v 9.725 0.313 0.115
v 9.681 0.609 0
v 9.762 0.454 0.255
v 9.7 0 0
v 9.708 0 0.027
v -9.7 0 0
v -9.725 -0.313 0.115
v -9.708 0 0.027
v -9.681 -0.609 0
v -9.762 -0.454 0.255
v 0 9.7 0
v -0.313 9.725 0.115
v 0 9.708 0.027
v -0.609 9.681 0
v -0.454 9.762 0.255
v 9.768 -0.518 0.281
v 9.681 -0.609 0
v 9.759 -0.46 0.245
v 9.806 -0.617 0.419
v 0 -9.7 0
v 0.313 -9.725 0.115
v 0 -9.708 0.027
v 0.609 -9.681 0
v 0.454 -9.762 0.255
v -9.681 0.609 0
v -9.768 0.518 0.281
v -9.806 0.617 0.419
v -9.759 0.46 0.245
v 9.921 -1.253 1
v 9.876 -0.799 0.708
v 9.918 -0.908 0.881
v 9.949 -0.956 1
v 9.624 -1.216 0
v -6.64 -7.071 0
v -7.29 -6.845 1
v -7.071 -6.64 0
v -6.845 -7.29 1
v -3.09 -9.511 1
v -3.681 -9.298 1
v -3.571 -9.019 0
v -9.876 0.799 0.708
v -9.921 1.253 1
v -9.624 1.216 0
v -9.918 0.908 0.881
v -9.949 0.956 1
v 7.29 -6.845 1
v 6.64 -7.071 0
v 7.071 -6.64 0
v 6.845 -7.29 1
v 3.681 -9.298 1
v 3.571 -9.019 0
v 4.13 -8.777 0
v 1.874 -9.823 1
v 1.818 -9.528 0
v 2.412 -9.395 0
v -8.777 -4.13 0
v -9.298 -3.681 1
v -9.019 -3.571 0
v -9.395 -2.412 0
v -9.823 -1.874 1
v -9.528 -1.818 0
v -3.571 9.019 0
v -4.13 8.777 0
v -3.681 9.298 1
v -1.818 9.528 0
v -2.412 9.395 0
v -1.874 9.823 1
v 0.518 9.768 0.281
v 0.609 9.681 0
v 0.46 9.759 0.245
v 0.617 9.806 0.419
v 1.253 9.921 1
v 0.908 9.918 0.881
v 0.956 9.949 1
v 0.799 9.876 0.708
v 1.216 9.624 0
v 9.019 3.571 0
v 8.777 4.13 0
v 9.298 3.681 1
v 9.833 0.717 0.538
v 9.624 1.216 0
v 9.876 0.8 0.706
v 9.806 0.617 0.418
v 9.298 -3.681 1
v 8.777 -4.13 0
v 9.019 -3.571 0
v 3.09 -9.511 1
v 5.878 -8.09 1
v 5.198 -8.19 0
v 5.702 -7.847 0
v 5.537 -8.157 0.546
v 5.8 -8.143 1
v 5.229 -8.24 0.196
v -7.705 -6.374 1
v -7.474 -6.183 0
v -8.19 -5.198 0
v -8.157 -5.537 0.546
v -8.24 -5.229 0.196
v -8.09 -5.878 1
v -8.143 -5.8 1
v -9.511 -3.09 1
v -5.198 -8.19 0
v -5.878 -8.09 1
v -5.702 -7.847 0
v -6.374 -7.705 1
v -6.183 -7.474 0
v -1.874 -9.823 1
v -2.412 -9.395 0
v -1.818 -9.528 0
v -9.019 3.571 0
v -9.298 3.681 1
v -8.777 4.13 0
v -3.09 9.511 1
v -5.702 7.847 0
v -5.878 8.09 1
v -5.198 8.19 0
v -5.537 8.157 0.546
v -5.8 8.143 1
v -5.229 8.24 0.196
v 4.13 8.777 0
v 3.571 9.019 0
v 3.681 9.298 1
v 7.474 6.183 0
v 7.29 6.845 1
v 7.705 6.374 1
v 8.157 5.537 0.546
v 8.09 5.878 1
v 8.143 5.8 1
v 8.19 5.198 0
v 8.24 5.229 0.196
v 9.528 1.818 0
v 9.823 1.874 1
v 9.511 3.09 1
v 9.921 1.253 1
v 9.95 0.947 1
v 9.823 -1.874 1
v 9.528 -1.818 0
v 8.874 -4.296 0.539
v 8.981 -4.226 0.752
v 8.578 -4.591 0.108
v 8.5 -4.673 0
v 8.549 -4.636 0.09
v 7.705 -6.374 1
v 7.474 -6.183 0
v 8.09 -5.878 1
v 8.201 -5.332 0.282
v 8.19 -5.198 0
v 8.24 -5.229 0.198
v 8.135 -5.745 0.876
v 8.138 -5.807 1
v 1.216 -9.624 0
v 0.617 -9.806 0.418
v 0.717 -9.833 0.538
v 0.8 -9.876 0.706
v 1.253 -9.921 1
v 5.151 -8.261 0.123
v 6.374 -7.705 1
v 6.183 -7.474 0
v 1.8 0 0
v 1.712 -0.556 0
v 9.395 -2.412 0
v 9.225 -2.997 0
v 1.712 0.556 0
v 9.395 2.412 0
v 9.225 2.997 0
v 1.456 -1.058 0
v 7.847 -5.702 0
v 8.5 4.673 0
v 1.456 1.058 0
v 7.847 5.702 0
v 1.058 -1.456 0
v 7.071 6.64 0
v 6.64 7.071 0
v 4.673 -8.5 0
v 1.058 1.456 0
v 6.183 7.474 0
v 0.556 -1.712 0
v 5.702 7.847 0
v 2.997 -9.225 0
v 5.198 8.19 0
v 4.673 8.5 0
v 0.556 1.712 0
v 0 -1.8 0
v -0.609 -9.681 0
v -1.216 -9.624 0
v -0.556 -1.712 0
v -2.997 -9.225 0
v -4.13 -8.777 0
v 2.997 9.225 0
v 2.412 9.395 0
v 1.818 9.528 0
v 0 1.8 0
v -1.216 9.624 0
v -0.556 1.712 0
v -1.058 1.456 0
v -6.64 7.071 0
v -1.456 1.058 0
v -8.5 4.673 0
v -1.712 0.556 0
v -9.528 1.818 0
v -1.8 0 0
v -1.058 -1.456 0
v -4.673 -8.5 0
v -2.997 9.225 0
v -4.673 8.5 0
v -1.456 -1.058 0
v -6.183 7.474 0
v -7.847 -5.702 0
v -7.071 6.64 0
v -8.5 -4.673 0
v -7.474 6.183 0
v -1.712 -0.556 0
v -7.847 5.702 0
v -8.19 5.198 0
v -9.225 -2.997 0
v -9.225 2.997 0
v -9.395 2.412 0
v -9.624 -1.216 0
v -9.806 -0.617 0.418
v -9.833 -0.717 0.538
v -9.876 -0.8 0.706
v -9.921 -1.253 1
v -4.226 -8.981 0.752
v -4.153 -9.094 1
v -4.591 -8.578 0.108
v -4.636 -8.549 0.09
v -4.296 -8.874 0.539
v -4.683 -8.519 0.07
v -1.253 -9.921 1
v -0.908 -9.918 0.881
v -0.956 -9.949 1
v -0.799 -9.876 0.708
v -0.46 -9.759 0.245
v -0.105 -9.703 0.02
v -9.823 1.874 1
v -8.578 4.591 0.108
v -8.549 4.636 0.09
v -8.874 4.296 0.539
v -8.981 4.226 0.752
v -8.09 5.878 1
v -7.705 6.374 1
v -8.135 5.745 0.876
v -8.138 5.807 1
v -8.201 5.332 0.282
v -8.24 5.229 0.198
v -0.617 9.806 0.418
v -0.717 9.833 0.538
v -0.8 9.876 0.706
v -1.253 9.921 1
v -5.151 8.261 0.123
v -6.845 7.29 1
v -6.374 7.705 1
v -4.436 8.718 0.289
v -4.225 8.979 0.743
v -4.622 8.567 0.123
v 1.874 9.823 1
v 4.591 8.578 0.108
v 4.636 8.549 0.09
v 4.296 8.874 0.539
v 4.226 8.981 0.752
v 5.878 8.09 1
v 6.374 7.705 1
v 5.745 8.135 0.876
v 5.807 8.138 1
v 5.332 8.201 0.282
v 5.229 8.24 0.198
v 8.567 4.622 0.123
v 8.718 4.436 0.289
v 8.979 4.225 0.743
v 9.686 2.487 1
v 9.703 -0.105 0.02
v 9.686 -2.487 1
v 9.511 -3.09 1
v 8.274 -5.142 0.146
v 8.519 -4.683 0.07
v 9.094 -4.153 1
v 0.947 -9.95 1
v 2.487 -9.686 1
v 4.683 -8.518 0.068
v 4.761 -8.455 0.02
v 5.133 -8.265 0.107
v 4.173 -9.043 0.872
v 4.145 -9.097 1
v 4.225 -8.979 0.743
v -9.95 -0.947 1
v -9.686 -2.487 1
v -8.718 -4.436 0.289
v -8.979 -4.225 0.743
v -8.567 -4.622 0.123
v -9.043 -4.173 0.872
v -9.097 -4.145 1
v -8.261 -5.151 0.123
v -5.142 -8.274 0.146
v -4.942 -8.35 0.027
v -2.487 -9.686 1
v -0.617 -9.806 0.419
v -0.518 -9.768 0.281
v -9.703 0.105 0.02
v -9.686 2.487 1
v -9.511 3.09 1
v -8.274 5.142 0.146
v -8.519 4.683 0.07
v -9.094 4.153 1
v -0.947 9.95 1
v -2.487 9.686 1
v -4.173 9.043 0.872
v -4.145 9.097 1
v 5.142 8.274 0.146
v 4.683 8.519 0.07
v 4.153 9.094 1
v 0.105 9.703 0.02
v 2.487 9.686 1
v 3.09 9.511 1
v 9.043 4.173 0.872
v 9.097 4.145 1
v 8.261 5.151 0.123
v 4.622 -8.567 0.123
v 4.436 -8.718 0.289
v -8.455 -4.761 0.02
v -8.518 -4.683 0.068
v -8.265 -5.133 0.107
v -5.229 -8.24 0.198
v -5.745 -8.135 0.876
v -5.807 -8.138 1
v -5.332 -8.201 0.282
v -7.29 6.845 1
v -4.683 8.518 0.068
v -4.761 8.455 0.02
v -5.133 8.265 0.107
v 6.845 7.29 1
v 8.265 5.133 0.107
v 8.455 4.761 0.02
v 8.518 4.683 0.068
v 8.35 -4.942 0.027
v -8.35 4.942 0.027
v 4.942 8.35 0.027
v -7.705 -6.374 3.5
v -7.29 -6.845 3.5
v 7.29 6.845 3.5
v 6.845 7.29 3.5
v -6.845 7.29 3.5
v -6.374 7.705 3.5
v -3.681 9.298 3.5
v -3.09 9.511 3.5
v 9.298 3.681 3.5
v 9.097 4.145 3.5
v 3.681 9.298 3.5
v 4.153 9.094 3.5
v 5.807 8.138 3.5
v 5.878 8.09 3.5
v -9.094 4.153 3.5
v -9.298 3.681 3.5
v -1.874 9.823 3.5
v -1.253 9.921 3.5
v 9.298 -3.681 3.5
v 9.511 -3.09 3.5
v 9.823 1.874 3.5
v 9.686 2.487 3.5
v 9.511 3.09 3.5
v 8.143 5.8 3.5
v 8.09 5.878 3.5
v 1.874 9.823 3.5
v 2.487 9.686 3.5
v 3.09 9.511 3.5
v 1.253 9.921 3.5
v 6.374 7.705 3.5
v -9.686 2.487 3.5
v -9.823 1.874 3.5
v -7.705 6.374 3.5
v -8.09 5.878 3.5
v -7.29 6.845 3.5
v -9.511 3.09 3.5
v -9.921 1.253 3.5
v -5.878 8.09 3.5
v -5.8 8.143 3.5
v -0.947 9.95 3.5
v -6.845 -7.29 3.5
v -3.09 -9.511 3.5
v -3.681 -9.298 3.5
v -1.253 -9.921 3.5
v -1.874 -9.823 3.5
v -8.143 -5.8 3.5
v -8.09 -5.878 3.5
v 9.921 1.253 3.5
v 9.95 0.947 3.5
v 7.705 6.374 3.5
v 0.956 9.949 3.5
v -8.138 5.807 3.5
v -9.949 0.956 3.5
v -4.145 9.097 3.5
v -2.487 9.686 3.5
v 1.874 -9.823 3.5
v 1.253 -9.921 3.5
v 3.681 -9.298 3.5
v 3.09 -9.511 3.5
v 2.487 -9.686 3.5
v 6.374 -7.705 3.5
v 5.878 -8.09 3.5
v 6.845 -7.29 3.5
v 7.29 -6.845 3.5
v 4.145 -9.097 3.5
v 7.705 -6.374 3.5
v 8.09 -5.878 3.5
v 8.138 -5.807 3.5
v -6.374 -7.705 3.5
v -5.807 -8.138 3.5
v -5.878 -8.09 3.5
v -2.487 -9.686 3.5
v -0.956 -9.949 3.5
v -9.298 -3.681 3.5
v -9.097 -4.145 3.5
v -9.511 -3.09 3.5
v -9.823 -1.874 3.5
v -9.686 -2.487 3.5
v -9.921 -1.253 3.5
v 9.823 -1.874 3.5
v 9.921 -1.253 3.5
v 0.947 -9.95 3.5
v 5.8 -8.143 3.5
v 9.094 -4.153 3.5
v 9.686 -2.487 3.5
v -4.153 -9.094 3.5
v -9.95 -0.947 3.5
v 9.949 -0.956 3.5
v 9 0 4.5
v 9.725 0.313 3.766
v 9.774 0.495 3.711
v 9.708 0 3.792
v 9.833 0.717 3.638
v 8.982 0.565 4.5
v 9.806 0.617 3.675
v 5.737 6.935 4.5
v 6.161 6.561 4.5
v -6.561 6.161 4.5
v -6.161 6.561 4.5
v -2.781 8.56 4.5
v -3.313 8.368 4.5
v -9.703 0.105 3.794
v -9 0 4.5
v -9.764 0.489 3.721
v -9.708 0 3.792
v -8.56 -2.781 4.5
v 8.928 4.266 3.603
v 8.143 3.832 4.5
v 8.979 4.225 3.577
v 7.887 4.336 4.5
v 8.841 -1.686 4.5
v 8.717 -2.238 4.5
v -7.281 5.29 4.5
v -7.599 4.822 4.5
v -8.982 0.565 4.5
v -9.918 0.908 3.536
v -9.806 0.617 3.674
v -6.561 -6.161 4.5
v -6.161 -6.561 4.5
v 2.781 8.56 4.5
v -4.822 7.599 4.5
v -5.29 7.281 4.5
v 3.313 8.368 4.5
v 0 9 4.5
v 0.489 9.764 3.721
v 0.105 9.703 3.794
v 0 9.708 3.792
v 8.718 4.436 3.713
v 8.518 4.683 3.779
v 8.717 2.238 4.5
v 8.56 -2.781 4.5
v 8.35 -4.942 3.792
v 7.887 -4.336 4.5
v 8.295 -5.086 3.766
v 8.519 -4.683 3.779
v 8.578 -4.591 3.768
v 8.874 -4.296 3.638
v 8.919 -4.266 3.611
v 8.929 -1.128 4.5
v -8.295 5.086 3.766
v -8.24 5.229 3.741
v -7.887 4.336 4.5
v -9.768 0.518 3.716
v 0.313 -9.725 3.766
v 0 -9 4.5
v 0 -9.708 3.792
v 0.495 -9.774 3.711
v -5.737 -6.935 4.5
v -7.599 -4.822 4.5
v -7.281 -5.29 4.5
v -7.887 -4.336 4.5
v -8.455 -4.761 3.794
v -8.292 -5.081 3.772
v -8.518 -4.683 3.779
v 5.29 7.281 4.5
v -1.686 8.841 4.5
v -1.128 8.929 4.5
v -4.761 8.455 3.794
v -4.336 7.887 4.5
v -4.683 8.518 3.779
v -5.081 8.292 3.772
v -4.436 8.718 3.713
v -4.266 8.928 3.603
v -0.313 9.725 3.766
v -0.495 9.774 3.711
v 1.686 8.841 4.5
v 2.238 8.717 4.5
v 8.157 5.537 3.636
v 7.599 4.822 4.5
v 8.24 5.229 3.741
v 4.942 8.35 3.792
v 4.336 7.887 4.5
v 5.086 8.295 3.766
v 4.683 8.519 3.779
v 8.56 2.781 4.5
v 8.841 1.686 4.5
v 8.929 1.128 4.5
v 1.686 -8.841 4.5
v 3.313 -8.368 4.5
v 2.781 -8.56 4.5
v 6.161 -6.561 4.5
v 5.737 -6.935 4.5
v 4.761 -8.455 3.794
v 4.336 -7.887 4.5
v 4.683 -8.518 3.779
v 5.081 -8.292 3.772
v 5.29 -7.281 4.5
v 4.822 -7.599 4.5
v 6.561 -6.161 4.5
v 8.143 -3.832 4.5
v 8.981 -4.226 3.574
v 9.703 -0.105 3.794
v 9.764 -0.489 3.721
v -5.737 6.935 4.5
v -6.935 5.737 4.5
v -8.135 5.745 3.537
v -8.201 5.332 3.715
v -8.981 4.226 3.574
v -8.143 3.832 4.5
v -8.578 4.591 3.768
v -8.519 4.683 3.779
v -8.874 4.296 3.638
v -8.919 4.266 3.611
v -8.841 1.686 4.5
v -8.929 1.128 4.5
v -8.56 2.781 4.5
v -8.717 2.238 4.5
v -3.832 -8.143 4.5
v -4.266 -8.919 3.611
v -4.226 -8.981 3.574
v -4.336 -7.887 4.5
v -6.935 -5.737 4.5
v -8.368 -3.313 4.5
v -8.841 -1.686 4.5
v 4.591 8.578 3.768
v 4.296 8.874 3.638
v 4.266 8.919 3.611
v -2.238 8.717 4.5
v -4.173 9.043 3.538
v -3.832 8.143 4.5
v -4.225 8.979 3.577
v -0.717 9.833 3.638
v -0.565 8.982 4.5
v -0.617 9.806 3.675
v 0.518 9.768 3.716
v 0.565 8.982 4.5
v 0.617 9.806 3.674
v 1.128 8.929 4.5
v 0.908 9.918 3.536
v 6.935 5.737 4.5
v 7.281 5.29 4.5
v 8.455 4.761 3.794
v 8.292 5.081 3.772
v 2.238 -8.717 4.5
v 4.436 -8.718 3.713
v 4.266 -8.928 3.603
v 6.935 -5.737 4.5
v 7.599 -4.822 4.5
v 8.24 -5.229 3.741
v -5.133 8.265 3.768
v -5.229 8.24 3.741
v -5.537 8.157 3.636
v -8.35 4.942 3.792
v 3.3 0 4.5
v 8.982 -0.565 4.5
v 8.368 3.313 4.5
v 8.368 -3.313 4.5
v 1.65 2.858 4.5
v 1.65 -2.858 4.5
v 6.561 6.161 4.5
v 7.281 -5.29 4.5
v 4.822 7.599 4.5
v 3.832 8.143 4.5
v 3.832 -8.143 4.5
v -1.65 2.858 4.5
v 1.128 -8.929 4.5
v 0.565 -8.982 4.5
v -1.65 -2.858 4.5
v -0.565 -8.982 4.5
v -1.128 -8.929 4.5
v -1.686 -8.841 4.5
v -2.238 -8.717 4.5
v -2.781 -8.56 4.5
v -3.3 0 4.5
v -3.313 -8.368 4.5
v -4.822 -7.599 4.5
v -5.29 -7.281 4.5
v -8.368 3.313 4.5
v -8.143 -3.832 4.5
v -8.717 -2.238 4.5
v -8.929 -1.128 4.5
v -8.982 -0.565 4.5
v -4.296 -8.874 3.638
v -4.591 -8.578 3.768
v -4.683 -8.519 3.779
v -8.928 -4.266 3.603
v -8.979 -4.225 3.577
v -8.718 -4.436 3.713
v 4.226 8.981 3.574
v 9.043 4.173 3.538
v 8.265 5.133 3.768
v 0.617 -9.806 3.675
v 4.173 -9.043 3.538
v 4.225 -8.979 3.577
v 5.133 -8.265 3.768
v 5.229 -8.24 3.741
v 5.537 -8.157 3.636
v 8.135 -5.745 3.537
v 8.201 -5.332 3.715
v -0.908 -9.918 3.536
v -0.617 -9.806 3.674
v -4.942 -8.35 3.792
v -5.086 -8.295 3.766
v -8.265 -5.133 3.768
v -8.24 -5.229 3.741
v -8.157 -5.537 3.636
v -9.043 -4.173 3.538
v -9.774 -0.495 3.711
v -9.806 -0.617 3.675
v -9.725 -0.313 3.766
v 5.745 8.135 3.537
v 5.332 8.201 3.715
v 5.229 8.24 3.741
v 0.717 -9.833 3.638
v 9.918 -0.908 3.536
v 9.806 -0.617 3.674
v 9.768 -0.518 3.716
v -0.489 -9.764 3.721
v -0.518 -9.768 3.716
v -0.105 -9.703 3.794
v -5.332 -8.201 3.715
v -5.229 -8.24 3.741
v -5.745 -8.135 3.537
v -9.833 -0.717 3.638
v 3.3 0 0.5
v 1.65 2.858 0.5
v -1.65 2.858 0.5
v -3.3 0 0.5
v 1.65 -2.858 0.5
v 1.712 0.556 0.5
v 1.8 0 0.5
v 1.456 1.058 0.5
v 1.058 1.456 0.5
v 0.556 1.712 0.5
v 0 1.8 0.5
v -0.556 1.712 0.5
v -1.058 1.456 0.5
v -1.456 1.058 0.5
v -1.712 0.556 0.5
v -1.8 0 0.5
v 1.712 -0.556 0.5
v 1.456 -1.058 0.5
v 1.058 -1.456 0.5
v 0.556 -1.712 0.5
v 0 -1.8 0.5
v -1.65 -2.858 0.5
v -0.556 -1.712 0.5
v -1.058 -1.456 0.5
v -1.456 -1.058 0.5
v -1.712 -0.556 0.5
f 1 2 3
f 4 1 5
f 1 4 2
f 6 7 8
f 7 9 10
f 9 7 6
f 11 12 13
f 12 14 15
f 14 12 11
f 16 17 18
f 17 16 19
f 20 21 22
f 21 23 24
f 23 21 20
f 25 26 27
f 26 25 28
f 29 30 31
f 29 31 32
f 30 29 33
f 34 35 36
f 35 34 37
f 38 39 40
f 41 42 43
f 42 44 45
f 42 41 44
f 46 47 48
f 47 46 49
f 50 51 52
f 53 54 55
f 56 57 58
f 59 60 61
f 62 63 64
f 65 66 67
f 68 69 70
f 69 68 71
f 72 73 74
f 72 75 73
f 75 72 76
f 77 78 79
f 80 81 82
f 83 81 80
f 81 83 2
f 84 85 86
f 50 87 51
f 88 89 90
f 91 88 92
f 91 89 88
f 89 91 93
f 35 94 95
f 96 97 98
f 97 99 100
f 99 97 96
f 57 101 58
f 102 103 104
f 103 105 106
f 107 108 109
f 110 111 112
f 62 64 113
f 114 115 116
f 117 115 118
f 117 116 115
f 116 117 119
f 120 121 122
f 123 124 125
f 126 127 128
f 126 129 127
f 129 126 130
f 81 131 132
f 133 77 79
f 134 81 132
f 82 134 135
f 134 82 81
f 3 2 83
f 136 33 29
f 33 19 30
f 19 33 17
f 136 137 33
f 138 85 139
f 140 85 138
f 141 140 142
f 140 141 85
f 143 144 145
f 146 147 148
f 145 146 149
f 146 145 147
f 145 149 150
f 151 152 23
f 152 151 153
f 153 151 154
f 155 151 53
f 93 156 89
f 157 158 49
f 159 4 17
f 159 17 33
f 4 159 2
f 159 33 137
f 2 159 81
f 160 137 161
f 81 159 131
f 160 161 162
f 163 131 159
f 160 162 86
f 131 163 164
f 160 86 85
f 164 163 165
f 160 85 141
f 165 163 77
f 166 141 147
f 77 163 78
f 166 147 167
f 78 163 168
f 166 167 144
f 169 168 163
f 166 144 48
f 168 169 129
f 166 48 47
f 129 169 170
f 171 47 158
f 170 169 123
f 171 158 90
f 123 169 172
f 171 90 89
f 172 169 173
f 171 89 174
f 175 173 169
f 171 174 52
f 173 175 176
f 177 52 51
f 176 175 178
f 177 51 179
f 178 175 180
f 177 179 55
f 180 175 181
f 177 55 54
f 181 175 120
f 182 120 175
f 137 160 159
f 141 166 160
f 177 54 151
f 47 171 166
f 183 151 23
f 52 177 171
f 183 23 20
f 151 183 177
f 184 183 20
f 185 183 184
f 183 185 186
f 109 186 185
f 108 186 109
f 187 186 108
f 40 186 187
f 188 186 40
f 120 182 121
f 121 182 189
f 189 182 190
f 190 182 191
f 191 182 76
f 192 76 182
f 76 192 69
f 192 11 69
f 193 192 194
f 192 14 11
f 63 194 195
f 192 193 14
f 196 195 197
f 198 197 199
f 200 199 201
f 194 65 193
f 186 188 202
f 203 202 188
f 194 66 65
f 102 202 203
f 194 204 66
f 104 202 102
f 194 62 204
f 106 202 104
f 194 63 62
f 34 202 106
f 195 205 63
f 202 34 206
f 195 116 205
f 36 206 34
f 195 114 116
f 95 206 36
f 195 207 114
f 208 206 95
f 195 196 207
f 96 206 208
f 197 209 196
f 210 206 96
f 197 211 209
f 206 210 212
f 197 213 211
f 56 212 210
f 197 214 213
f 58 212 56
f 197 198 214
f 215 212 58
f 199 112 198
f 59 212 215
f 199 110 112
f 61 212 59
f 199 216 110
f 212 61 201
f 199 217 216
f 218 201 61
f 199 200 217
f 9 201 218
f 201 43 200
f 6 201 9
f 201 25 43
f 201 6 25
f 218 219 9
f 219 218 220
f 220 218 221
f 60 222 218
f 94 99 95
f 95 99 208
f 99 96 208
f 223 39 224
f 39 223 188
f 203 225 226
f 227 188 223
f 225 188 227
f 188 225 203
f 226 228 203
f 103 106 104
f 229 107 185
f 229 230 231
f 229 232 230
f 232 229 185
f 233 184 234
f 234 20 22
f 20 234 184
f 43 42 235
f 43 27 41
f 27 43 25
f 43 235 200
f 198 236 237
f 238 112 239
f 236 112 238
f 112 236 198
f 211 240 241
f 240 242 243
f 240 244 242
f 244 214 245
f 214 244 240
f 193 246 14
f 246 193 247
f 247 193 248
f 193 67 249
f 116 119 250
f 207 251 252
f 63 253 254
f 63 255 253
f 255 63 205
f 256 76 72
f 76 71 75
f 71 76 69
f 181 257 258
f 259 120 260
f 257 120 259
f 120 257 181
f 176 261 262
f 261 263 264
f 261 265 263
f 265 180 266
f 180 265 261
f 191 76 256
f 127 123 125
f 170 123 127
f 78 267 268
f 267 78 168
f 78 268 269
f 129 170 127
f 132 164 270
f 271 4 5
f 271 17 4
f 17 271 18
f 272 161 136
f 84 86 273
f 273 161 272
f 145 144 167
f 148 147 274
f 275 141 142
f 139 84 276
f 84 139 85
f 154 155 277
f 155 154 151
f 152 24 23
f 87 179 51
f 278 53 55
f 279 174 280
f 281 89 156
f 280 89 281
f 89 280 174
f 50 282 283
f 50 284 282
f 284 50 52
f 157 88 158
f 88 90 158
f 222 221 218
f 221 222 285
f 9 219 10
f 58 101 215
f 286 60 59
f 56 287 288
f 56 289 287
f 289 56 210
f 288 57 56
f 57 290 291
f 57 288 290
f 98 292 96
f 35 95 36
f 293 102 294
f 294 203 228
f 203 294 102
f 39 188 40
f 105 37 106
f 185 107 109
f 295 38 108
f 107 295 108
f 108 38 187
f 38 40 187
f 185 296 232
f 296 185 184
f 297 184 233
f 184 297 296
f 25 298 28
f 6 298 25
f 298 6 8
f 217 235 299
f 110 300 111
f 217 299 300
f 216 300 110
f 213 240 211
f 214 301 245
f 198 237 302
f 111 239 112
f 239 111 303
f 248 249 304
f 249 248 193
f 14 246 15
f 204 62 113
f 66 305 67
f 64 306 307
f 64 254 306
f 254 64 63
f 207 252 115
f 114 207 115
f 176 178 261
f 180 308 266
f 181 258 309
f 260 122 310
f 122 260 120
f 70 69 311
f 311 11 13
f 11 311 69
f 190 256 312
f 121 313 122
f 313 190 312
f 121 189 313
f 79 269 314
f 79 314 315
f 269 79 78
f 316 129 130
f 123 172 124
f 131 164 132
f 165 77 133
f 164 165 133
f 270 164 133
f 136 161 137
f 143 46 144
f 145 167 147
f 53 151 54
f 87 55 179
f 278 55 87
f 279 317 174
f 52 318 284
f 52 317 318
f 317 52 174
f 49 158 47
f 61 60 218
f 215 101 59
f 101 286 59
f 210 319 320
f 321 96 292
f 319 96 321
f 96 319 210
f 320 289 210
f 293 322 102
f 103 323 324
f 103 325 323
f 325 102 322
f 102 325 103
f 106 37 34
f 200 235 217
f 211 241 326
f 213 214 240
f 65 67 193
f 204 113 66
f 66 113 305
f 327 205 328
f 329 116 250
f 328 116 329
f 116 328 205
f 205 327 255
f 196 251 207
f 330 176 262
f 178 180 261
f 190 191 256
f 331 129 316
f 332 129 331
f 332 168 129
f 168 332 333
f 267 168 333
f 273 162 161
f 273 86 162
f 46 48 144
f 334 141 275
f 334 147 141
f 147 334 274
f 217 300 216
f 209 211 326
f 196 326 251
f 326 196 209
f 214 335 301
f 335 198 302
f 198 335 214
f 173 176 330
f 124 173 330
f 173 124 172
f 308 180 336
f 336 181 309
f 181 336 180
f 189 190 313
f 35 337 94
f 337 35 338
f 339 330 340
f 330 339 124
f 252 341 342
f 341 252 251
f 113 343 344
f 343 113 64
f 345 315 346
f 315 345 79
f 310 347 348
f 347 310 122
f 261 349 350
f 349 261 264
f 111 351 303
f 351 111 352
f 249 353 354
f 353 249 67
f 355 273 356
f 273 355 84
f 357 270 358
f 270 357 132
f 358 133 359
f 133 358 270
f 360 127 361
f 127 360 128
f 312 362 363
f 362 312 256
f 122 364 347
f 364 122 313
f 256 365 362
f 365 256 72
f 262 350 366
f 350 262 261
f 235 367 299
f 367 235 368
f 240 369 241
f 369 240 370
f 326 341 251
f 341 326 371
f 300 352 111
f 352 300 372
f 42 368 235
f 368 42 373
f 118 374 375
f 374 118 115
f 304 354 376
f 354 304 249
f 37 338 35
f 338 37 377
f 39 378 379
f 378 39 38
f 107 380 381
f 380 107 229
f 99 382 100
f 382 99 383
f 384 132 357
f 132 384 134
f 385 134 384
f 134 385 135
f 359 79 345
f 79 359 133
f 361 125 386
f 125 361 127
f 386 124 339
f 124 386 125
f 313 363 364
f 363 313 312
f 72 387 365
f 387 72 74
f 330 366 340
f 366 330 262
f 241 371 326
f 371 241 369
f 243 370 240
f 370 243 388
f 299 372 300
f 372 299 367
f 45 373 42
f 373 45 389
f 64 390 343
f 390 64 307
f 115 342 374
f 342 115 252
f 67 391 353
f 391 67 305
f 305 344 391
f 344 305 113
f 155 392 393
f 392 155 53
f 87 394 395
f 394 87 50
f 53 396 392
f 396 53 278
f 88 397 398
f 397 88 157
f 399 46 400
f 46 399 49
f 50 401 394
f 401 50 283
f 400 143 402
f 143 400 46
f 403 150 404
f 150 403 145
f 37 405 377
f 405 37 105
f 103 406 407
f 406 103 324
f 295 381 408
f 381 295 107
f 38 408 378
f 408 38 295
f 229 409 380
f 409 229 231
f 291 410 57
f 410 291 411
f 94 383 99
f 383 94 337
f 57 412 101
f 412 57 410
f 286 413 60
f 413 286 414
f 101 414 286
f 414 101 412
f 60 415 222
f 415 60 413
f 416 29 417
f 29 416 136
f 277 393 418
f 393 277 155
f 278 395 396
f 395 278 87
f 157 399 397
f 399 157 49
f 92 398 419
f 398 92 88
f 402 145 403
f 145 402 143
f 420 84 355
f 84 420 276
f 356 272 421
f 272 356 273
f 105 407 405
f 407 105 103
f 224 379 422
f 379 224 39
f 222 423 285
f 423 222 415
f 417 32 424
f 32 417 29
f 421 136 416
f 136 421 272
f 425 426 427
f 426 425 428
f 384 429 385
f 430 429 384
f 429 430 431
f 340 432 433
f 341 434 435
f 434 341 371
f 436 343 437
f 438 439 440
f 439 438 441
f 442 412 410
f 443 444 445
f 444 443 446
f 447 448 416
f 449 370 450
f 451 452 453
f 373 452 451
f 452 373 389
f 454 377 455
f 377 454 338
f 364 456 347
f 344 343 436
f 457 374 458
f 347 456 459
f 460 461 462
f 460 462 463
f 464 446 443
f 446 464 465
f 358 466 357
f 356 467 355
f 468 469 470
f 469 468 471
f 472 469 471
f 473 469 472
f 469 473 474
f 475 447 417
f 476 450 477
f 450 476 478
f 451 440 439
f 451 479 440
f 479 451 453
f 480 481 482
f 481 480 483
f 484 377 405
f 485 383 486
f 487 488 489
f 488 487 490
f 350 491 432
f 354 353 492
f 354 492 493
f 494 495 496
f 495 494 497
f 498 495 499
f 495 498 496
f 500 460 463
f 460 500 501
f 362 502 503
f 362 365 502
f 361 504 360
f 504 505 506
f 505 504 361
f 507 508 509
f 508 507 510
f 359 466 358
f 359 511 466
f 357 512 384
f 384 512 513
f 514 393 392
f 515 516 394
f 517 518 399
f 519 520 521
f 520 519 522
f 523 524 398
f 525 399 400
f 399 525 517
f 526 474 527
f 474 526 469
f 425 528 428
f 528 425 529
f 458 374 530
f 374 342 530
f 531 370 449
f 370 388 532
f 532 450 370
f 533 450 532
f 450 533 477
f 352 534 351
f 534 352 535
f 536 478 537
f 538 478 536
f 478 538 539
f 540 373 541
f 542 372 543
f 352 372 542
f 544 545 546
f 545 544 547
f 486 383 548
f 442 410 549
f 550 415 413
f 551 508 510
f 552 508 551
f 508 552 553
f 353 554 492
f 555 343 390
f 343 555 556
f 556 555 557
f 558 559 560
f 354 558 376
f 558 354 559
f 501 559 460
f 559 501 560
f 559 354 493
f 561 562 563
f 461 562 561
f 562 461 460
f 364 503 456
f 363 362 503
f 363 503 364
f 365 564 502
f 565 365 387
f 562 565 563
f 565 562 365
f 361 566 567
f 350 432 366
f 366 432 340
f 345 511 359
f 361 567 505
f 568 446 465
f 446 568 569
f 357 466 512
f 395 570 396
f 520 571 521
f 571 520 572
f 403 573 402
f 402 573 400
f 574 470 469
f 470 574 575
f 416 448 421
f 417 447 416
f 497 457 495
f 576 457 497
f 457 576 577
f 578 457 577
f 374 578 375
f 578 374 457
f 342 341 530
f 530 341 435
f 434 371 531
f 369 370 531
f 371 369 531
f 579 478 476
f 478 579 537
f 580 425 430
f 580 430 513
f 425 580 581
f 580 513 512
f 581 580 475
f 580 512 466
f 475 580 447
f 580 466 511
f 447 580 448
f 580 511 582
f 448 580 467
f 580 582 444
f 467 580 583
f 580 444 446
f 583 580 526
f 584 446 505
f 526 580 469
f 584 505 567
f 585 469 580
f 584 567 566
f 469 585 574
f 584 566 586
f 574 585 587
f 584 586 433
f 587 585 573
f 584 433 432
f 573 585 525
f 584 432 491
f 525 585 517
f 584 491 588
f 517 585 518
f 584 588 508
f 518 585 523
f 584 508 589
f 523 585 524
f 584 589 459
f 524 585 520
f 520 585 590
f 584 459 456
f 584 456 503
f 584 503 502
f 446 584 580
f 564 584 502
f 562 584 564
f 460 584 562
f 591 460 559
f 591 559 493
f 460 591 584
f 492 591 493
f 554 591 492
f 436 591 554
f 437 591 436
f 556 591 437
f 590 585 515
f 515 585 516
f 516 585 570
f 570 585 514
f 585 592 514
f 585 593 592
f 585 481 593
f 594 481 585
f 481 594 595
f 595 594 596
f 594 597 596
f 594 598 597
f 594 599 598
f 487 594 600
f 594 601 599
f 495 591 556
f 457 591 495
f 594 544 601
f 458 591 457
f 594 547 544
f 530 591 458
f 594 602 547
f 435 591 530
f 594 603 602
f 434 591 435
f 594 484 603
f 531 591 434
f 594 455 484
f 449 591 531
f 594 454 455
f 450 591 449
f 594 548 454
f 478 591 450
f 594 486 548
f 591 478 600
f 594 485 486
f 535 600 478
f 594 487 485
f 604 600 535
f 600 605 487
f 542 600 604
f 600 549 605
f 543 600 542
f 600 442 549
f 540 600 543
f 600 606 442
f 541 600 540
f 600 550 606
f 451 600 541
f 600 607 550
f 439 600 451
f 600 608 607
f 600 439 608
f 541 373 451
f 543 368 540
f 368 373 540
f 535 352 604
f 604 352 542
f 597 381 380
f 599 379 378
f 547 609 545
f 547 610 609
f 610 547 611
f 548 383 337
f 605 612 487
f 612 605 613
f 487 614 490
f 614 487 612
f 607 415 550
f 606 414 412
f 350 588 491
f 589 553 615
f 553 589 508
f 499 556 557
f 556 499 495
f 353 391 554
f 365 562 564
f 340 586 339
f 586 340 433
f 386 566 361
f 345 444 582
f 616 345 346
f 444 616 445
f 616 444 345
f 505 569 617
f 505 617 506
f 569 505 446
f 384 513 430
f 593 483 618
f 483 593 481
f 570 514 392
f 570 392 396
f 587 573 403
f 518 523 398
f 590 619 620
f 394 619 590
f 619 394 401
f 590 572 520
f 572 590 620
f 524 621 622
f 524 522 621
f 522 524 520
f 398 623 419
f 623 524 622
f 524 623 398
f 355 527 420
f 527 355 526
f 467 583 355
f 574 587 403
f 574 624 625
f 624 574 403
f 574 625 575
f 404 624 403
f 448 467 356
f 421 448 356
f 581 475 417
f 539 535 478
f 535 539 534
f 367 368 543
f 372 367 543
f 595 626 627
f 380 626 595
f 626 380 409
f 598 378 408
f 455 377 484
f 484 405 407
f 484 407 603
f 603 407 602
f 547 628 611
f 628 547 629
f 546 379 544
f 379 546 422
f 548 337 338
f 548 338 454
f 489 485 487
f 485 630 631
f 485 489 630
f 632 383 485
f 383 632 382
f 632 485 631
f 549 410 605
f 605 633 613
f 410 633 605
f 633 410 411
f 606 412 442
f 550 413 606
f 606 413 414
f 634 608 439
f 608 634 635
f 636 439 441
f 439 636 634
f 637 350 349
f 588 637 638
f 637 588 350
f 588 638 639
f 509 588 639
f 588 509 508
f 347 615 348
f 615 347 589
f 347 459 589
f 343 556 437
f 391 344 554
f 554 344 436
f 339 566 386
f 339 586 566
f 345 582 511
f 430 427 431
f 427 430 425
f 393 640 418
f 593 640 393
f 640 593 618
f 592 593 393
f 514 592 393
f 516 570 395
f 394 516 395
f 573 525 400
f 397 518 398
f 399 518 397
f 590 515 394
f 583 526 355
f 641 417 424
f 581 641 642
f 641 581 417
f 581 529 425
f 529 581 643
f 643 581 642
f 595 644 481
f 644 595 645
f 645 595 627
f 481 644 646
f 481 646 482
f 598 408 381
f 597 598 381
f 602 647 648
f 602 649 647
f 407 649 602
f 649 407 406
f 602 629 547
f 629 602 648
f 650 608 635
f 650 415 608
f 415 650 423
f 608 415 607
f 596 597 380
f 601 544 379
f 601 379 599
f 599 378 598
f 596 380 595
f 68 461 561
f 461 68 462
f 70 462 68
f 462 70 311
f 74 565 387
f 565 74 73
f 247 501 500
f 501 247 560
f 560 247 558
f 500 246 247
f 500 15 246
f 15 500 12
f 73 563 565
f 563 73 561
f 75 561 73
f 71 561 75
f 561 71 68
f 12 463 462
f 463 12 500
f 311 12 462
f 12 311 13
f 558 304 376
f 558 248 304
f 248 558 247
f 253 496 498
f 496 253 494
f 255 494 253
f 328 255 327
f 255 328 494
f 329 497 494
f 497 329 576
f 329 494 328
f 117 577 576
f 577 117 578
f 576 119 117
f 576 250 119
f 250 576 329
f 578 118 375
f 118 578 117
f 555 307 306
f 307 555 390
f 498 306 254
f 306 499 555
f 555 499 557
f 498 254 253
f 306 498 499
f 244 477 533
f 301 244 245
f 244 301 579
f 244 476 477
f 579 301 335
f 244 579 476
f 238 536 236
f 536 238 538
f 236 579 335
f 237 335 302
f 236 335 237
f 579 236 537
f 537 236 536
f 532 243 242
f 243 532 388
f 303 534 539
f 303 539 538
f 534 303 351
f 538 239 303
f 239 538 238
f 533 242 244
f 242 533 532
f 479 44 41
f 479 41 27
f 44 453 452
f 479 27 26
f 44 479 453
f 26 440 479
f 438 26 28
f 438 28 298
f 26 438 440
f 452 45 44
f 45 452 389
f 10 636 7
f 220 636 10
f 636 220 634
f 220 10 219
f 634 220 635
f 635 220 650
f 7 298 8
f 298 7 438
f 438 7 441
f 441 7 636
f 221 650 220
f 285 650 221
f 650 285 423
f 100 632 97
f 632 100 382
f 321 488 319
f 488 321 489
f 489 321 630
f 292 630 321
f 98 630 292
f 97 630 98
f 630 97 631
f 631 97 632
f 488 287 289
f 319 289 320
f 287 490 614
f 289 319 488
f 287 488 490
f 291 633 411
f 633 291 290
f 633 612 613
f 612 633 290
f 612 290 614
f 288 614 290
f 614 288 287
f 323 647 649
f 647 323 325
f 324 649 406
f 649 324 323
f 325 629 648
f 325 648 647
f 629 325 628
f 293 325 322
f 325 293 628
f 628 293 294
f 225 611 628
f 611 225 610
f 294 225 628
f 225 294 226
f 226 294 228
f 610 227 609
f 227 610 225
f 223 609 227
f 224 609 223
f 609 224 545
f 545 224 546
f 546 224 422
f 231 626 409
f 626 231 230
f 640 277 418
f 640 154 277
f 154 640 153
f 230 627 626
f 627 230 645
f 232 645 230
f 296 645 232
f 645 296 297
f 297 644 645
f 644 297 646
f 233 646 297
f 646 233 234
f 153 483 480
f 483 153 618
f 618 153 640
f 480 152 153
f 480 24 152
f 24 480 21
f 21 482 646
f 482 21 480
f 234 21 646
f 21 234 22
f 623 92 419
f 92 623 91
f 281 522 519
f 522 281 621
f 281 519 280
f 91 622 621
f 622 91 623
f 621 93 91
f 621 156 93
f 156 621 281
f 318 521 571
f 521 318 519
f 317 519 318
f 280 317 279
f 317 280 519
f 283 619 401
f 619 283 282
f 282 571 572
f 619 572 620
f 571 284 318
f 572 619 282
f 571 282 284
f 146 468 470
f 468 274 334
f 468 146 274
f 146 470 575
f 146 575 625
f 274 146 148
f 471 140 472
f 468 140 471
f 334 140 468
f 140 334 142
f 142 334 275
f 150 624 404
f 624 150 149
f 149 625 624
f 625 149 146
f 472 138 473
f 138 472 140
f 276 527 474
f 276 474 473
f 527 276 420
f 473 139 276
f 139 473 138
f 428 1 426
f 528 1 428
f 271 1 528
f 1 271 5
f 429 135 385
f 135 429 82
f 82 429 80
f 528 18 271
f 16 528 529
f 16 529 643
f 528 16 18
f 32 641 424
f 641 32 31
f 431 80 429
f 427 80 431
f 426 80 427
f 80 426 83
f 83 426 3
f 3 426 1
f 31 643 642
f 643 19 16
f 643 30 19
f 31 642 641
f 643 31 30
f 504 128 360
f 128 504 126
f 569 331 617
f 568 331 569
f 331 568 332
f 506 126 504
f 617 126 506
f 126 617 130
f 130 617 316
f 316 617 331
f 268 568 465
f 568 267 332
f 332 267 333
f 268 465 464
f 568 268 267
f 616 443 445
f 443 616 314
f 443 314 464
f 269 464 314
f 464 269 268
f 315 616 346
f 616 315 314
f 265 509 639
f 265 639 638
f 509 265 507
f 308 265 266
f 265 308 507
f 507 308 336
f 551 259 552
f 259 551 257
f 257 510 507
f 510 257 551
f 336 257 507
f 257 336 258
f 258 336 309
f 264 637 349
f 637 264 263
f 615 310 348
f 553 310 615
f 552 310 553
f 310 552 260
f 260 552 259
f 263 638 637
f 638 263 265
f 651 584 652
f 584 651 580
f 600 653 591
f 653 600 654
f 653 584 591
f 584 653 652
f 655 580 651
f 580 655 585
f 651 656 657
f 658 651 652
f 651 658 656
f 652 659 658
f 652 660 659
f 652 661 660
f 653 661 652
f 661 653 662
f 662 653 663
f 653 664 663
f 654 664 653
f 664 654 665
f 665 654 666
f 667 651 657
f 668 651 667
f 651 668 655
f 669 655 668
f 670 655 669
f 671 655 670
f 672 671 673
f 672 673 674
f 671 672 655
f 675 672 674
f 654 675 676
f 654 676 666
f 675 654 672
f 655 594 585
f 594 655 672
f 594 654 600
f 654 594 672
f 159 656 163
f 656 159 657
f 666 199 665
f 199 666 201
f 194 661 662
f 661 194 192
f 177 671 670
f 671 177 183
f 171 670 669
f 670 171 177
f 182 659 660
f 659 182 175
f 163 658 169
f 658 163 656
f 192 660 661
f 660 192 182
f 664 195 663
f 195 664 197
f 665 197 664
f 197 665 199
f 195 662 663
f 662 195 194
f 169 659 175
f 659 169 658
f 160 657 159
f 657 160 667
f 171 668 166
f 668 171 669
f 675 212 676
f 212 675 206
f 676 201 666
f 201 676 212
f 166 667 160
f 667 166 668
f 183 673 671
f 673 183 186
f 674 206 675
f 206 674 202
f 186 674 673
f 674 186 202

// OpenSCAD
difference(){
union(){
	cylinder(r1=9.7, r2=10, h=1, $fn=100);
	translate([0,0,1]) cylinder(r1=10, r2=10, h=2.5, $fn=100);
	translate([0,0,3.5])cylinder(r1=10, r2=9, h=1, $fn=100);
}

translate([0,0,0.5]) cylinder(r=3.3, h=5, $fn=6);
translate([0,0,-0.5]) cylinder(r=1.8, h=5, $fn=20);

for (i = [0:1:12]) {
	rotate([0,0,i*30]) translate([0,11.7,0]) rotate([0,0,45]) cylinder(r=2, h=5, $fn=30);
}

}
